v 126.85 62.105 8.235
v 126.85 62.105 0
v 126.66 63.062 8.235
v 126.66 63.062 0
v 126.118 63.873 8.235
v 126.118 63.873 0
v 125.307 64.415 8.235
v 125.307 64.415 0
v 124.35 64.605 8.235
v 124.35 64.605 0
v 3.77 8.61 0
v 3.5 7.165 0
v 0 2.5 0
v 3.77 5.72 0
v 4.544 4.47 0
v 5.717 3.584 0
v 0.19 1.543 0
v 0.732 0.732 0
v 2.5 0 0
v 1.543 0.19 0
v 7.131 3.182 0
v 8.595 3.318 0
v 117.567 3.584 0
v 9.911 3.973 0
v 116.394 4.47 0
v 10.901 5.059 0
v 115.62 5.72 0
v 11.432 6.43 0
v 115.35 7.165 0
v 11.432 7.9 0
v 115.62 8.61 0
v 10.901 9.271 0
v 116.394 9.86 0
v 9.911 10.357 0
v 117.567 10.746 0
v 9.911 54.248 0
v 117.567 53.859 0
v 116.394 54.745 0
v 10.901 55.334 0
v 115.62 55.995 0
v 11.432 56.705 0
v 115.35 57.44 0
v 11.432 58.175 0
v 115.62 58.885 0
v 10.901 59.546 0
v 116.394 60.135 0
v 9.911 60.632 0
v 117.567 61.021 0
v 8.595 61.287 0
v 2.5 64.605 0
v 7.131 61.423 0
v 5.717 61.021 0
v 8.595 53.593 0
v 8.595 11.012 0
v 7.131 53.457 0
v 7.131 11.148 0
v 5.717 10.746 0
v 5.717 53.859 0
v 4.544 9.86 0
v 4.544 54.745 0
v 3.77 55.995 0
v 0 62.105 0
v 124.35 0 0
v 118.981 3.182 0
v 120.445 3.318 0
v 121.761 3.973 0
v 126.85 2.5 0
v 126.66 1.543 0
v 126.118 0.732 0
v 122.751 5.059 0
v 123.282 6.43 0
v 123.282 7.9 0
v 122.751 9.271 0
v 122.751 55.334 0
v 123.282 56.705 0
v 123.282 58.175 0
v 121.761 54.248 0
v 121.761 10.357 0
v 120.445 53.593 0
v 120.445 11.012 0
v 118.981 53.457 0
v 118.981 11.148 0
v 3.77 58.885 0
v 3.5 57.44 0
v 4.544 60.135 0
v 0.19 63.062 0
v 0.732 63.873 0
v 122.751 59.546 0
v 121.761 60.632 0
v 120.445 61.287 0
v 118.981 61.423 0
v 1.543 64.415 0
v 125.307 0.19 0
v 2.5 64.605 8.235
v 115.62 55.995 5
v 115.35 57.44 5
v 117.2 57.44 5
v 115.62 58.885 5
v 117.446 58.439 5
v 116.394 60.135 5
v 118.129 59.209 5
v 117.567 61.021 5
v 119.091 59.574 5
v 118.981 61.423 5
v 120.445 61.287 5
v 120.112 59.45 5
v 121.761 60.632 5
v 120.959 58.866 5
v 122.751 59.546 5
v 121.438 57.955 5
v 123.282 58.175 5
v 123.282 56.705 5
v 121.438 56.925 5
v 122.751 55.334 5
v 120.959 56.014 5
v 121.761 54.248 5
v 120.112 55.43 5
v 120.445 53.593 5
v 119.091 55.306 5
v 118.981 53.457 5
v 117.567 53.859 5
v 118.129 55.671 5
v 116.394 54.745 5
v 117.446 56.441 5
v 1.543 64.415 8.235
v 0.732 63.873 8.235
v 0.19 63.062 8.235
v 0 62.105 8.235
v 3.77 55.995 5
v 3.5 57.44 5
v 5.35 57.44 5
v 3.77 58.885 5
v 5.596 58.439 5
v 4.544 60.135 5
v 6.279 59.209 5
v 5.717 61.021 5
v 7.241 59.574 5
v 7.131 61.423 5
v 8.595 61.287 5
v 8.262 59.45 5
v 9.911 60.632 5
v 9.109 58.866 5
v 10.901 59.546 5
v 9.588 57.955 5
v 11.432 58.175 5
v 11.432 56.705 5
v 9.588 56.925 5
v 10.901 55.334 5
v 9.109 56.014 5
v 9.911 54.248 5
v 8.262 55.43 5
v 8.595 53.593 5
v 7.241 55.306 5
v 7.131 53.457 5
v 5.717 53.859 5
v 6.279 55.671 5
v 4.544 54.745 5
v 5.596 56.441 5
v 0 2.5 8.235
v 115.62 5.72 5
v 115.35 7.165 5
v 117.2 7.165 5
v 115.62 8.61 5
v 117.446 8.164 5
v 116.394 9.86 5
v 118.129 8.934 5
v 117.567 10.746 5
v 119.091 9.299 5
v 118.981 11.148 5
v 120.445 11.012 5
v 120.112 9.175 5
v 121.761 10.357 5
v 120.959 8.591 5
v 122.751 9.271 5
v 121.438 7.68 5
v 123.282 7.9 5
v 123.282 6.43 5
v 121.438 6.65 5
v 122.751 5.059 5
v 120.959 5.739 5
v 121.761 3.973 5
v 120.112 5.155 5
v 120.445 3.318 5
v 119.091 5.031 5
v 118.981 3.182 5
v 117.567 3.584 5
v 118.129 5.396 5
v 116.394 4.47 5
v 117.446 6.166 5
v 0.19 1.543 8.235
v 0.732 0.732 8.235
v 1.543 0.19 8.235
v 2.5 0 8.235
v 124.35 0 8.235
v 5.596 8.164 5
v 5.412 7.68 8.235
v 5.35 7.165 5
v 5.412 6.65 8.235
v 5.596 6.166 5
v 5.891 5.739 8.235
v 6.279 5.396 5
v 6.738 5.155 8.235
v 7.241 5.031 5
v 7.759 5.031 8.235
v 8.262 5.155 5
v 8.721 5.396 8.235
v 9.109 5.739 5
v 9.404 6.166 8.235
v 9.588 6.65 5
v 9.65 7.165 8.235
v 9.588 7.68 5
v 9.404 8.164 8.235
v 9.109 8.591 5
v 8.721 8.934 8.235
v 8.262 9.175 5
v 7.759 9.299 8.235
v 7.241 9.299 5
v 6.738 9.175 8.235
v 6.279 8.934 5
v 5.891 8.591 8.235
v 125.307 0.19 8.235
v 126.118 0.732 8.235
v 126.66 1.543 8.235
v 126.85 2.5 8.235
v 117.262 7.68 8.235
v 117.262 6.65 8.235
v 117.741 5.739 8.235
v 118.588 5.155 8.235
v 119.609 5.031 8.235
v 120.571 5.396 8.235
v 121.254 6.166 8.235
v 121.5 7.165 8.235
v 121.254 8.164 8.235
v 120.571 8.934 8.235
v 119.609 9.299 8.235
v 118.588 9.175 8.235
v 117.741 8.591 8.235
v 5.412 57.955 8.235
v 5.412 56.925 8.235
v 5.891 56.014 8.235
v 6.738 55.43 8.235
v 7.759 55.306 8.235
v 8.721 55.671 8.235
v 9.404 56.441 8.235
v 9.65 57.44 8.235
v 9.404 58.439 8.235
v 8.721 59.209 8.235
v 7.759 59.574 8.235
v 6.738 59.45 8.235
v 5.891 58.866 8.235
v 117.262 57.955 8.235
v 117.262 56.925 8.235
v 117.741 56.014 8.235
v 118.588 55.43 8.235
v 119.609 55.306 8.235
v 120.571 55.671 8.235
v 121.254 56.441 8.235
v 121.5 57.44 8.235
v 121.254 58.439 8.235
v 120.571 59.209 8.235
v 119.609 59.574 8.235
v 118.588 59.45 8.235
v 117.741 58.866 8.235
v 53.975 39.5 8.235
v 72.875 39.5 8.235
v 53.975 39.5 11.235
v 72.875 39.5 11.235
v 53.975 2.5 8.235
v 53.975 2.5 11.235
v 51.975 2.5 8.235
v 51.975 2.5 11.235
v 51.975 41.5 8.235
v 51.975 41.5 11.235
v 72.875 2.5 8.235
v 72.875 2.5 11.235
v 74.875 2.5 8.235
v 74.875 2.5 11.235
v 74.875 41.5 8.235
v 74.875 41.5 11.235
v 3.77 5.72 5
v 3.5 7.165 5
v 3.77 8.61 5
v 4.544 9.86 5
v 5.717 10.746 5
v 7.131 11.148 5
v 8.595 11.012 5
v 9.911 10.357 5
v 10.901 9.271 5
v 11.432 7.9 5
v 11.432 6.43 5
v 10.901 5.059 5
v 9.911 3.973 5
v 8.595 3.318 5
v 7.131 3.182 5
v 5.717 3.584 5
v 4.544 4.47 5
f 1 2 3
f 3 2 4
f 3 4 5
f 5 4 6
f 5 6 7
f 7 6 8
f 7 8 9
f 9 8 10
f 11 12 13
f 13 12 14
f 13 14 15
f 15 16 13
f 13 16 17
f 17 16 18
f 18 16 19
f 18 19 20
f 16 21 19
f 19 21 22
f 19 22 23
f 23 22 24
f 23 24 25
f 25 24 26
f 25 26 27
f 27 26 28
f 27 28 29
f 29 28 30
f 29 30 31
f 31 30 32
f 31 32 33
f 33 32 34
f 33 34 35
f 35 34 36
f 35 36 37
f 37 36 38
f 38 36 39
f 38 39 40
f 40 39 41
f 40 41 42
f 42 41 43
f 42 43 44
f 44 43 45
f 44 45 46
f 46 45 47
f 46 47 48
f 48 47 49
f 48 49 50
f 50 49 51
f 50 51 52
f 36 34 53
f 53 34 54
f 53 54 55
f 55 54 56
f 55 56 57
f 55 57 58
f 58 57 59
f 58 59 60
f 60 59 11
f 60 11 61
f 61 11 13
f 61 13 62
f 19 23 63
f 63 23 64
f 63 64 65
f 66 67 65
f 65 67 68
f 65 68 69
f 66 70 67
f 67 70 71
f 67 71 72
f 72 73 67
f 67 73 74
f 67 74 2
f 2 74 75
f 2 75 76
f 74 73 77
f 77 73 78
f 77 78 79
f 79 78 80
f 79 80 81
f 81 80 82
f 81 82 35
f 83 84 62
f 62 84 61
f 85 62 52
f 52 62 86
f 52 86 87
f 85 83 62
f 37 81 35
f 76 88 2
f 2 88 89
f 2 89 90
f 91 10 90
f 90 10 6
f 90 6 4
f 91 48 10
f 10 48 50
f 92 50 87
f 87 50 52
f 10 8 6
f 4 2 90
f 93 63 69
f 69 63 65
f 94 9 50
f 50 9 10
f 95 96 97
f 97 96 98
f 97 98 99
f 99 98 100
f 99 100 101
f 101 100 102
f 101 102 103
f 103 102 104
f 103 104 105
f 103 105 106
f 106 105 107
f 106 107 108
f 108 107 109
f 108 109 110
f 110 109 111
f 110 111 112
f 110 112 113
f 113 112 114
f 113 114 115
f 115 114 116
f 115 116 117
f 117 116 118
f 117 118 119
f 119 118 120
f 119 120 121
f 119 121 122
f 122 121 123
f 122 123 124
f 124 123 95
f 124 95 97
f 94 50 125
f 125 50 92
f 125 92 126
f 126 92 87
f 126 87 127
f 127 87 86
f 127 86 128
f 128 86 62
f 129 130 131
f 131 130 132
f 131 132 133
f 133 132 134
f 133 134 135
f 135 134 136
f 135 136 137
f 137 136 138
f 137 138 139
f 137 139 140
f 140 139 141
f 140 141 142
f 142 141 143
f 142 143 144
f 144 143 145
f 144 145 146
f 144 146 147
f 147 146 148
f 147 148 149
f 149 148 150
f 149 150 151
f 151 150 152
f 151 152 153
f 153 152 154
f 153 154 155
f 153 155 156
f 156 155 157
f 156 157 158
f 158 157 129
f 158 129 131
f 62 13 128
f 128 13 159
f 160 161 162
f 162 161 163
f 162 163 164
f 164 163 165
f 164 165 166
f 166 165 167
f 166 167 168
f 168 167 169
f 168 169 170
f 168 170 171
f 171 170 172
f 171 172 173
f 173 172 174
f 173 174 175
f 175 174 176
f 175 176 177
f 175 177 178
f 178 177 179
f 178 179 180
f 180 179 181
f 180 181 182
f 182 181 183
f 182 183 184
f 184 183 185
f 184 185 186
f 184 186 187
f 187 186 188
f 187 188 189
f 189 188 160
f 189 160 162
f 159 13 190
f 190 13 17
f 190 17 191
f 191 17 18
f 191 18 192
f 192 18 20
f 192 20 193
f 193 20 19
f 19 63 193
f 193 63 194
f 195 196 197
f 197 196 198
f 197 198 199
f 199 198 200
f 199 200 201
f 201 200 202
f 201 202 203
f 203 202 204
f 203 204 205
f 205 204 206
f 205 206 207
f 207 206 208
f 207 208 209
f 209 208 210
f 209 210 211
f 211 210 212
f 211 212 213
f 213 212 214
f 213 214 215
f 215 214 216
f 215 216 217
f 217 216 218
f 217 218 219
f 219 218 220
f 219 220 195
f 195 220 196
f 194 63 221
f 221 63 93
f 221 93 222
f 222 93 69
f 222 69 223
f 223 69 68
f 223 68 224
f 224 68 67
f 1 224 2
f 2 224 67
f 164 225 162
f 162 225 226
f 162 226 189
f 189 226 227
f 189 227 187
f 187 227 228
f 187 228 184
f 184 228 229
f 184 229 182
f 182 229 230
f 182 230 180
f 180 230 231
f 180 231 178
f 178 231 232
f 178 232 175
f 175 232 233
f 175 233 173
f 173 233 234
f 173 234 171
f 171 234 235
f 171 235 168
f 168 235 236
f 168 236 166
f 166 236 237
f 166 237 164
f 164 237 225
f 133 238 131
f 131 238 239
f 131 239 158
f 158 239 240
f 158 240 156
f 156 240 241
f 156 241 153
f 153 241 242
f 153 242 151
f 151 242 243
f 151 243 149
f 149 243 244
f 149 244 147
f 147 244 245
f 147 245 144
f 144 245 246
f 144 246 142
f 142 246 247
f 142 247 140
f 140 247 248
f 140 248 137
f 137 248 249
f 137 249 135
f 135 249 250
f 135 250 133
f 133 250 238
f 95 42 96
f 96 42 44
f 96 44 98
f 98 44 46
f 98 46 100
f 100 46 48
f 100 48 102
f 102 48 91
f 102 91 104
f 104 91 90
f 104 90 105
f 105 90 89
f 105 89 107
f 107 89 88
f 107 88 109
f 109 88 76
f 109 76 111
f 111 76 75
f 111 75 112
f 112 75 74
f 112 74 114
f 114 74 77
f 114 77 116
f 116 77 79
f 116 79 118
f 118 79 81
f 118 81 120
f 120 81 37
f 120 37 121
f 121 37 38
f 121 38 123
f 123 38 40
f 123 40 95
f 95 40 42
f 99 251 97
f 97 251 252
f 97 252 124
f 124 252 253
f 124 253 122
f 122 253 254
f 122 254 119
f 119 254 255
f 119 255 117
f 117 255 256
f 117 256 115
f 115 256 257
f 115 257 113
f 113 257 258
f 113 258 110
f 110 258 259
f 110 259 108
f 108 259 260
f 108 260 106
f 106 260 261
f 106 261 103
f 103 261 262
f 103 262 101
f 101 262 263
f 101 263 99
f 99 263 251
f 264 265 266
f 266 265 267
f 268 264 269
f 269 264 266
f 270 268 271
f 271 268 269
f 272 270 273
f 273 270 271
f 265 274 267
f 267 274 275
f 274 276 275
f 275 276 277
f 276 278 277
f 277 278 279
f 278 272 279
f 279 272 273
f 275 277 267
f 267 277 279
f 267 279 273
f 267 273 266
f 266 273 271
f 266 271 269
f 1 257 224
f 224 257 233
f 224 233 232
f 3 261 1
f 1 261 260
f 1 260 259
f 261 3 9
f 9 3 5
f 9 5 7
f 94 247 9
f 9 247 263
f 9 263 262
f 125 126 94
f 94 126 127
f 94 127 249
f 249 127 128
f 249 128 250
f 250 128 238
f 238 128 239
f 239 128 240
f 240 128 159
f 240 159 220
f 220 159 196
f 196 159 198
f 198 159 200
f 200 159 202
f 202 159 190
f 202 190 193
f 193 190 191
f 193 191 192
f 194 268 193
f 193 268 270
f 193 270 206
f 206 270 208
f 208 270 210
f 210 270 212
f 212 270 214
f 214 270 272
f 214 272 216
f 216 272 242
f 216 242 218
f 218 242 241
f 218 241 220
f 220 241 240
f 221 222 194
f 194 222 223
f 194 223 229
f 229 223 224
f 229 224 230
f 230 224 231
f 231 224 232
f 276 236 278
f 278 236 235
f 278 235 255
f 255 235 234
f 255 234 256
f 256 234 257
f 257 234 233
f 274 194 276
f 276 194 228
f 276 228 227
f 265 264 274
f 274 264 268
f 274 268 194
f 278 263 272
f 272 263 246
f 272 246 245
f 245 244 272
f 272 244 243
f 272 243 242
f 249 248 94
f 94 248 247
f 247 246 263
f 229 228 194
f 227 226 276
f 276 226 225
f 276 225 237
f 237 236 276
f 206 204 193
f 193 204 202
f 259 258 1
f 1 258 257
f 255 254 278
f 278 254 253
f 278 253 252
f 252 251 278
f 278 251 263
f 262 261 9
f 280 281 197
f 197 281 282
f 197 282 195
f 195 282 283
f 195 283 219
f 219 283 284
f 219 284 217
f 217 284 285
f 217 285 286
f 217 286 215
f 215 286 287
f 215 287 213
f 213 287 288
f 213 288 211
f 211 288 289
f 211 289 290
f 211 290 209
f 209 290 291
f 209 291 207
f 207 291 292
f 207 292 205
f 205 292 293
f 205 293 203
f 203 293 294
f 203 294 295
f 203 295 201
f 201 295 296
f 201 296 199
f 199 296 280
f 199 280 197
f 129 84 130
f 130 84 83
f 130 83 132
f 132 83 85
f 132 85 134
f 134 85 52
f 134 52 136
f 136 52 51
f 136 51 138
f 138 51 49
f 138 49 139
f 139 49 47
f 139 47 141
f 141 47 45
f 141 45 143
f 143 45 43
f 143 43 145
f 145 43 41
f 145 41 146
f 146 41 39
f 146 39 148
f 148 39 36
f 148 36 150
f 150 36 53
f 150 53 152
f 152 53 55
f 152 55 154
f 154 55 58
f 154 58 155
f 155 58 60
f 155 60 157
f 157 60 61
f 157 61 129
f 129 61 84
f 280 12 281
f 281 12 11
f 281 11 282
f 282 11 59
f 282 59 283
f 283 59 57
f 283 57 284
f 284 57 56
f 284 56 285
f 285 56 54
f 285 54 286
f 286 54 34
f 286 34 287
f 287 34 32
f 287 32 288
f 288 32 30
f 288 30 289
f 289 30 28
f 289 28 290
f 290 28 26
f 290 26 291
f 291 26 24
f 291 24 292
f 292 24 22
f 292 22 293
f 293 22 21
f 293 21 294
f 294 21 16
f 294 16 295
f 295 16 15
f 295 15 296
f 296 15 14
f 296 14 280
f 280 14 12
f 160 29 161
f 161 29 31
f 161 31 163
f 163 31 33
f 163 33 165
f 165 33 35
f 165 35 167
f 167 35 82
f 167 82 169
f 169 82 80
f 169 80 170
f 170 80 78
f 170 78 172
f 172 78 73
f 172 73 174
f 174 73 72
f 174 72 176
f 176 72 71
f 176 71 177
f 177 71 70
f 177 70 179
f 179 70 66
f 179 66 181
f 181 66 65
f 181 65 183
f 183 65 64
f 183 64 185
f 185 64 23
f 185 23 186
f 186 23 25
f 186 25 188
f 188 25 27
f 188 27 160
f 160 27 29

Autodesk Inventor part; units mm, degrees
ref_plane "YZ Plane" through (0, 0, 0) normal (1, 0, 0) x (0, 1, 0)
ref_plane "XZ Plane" through (0, 0, 0) normal (0, 1, 0) x (-1, 0, 0)
ref_plane "XY Plane" through (0, 0, 0) normal (0, 0, 1) x (1, 0, 0)
sketch "Sketch1" plane through (0, 0, 0) normal (0, 0, 1) x (1, 0, 0)
  line L0 (0, 0) -> (126.85, 0)
  line L1 (126.85, 0) -> (126.85, 64.605)
  line L2 (126.85, 64.605) -> (0, 64.605)
  line L3 (0, 64.605) -> (0, 0)
  line L4 (55.925, 0) -> (65.5708, 0)
  line L5 (53.975, 0) -> (72.875, 0)
  line L6 (72.875, 0) -> (72.875, 39.5)
  line L7 (72.875, 39.5) -> (53.975, 39.5)
  line L8 (53.975, 39.5) -> (53.975, 0)
  line L9 (51.975, 0) -> (74.875, 0)
  line L10 (74.875, 0) -> (74.875, 41.5)
  line L11 (74.875, 41.5) -> (51.975, 41.5)
  line L12 (51.975, 41.5) -> (51.975, 0)
  point P0 (74.875, 20.75)
  point P1 (74.875, 0)
  dimension "d0" = 126.85
  dimension "d1" = 64.605
  dimension "d3" = 39.5
  dimension "d4" = 18.9
  dimension "d5" = 53.975
  dimension "d6" = 2
  dimension "d7" = 2
  dimension "d8" = 2
extrude "Extrusion2" add sketch "Sketch1" along normal blind 5.235 contours L3 L2 L1 L0 L10 L11 L12
extrude "Extrusion3" add sketch "Sketch1" along normal blind 8.235 contours L12 L11 L10 L0 L6 L7 L8
extrude "Extrusion4" add sketch "Sketch1" along normal blind 5.235 contours L8 L7 L6 L0
sketch "Sketch2" plane through (0, 0, 8.235) normal (0, 0, 1) x (1, 0, 0)
  line L0 (72.875, 39.5) -> (72.875, 0) projected
  line L1 (72.875, 0) -> (74.875, 0) projected
  line L2 (74.875, 0) -> (74.875, 41.5) projected
  line L3 (74.875, 41.5) -> (51.975, 41.5) projected
  line L4 (51.975, 41.5) -> (51.975, 0) projected
  line L5 (51.975, 0) -> (53.975, 0) projected
  line L6 (53.975, 0) -> (53.975, 39.5) projected
  line L7 (53.975, 39.5) -> (72.875, 39.5) projected
  line L8 (51.975, 0) -> (53.975, 0)
  line L9 (53.975, 0) -> (53.975, 2.5)
  line L10 (53.975, 2.5) -> (51.975, 2.5)
  line L11 (51.975, 2.5) -> (51.975, 0)
  line L12 (72.875, 0) -> (74.875, 0)
  line L13 (74.875, 0) -> (74.875, 2.5)
  line L14 (74.875, 2.5) -> (72.875, 2.5)
  line L15 (72.875, 2.5) -> (72.875, 0)
  point P0 (0, 0)
  dimension "d17" = 2.5
  dimension "d18" = 2.5
extrude "Extrusion5" cut sketch "Sketch2" against normal blind 3 contours L14 L2 L1 L0 | L6 L5 L4 L10
fillet "Fillet1" radius 2.5 4 edges at (126.85, 0, 2.6175) (0, 0, 2.6175) (126.85, 64.605, 2.6175) (0, 64.605, 2.6175)
sketch "Sketch3" plane through (0, 0, 5.235) normal (0, 0, 1) x (1, 0, 0)
  line L0 (0, 0) -> (15, 0)
  line L1 (15, 0) -> (15, 15)
  line L2 (15, 15) -> (0, 15)
  line L3 (0, 15) -> (0, 0)
  line L4 (0, 64.605) -> (15, 64.605)
  line L5 (15, 64.605) -> (15, 49.605)
  line L6 (15, 49.605) -> (0, 49.605)
  line L7 (0, 49.605) -> (0, 64.605)
  line L8 (124.35, 0) -> (2.5, 0) projected
  line L9 (126.85, 2.5) -> (126.85, 62.105) projected
  line L10 (126.85, 15) -> (111.85, 15)
  line L11 (111.85, 15) -> (111.85, 0)
  line L12 (111.85, 0) -> (126.85, 0)
  line L13 (126.85, 0) -> (126.85, 15)
  line L14 (126.85, 64.605) -> (111.85, 64.605)
  line L15 (111.85, 64.605) -> (111.85, 49.605)
  line L16 (111.85, 49.605) -> (126.85, 49.605)
  line L17 (126.85, 49.605) -> (126.85, 64.605)
  circle A0 centre (7.5, 57.44) radius 2.15
  circle A1 centre (119.35, 57.44) radius 2.15
  circle A2 centre (119.35, 7.165) radius 2.15
  line L18 (0, 62.105) -> (0, 2.5) projected
  circle A3 centre (7.5, 7.165) radius 2.15
  point P0 (111.85, 7.5)
  point P1 (119.35, 0)
  point P2 (119.35, 15)
  point P3 (7.5, 64.605)
  dimension "d22" = 15
  dimension "d23" = 15
  dimension "d24" = 15
  dimension "d25" = 15
  dimension "d26" = 64.605
  dimension "d28" = 15
  dimension "d29" = 15
  dimension "d30" = 15
  dimension "d31" = 15
  dimension "d32" = 64.605
  dimension "d33" = 0
  dimension "d52" = 7.165
  dimension "d53" = 7.5
  dimension "d54" = 4.3
  dimension "d55" = 4.3
  dimension "d56" = 7.5
  dimension "d57" = 7.165
  dimension "d58" = 4.3
  dimension "d59" = 7.5
  dimension "d61" = 7.165
  dimension "d62" = 0
  dimension "d63" = 4.3
  dimension "d65" = 7.5
  dimension "d66" = 7.165
sketch "Sketch4" plane through (0, 0, 0) normal (0, 0, -1) x (-1, 0, 0)
  line L0 (-126.85, 0) -> (-111.85, 0)
  line L1 (-111.85, 0) -> (-111.85, 15)
  line L2 (-111.85, 15) -> (-126.85, 15)
  line L3 (-126.85, 15) -> (-126.85, 0)
  line L4 (-126.85, 64.605) -> (-111.85, 64.605)
  line L5 (-111.85, 64.605) -> (-111.85, 49.605)
  line L6 (-111.85, 49.605) -> (-126.85, 49.605)
  line L7 (-126.85, 49.605) -> (-126.85, 64.605)
  line L8 (-85.2582, 0) -> (-207.1082, 0)
  line L9 (0, -43.3004) -> (0, 16.3046)
  line L10 (0, 15) -> (-15, 15)
  line L11 (-15, 15) -> (-15, 0)
  line L12 (-15, 0) -> (0, 0)
  line L13 (0, 0) -> (0, 15)
  line L14 (0, 64.605) -> (-15, 64.605)
  line L15 (-15, 64.605) -> (-15, 49.605)
  line L16 (-15, 49.605) -> (0, 49.605)
  line L17 (0, 49.605) -> (0, 64.605)
  line L18 (-2.5, 0) -> (-124.35, 0) projected
  line L19 (0, 62.105) -> (0, 2.5) projected
  line L20 (-126.85, 2.5) -> (-126.85, 62.105) projected
  point P0 (0, 0)
  point P1 (-15, 7.5)
  point P2 (-7.5, 0)
  point P3 (-7.5, 15)
  point P4 (0, 32.3025)
  point P5 (-119.35, 0)
  dimension "d34" = 15
  dimension "d35" = 15
  dimension "d36" = 15
  dimension "d37" = 15
  dimension "d38" = 64.605
  dimension "d39" = 0
  dimension "d40" = 15
  dimension "d41" = 15
  dimension "d42" = 15
  dimension "d43" = 15
  dimension "d44" = 64.605
  dimension "d45" = 0
  dimension "d46" = 0
  dimension "d47" = 0
  dimension "d48" = 0
  dimension "d49" = 0
extrude "Extrusion7" cut sketch "Sketch3" against normal blind 3.235 contours A0 | A1 | A2 | A3
sketch "Sketch5" plane through (0, 0, 0) normal (0, 0, -1) x (-1, 0, 0)
  circle A0 centre (-7.5, 7.165) radius 2.15 projected
  circle A1 centre (-7.5, 57.44) radius 2.15 projected
  circle A2 centre (-119.35, 57.44) radius 2.15 projected
  circle A3 centre (-119.35, 7.165) radius 2.15 projected
  circle A4 centre (-7.5, 7.165) radius 4
  circle A5 centre (-119.35, 7.165) radius 4
  circle A6 centre (-119.35, 57.44) radius 4
  circle A7 centre (-7.5, 57.44) radius 4
  point P0 (0, 0)
  dimension "d69" = 8
  dimension "d70" = 8
  dimension "d71" = 8
  dimension "d72" = 8
sketch "Sketch6" plane through (0, 0, 5.235) normal (0, 0, 1) x (1, 0, 0)
  line L0 (126.85, 2.5) -> (126.85, 62.105) projected
  circle A0 centre (119.35, 57.44) radius 2.15 projected
  circle A1 centre (7.5, 7.165) radius 2.15 projected
  circle A2 centre (119.35, 7.165) radius 2.15 projected
  circle A3 centre (7.5, 57.44) radius 2.15 projected
  arc A4 (2.5, 64.605) -> (0, 62.105) centre (2.5, 62.105) ccw projected
  line L1 (0, 62.105) -> (0, 2.5) projected
  arc A5 (0, 2.5) -> (2.5, 0) centre (2.5, 2.5) ccw projected
  line L2 (124.35, 0) -> (2.5, 0) projected
  arc A6 (124.35, 0) -> (126.85, 2.5) centre (124.35, 2.5) ccw projected
  line L3 (126.85, 2.5) -> (126.85, 62.105) projected
  arc A7 (126.85, 62.105) -> (124.35, 64.605) centre (124.35, 62.105) ccw projected
  line L4 (124.35, 64.605) -> (2.5, 64.605) projected
  line L5 (72.875, 2.5) -> (74.875, 2.5) projected
  line L6 (72.875, 39.5) -> (72.875, 2.5) projected
  line L7 (53.975, 39.5) -> (72.875, 39.5) projected
  line L8 (53.975, 2.5) -> (53.975, 39.5) projected
  line L9 (51.975, 2.5) -> (53.975, 2.5) projected
  line L10 (51.975, 2.5) -> (51.975, 41.5) projected
  line L11 (51.975, 41.5) -> (74.875, 41.5) projected
  line L12 (74.875, 41.5) -> (74.875, 2.5) projected
  line L13 (72.875, 2.5) -> (74.875, 2.5) projected
  line L14 (74.875, 2.5) -> (74.875, 41.5) projected
  line L15 (74.875, 41.5) -> (51.975, 41.5) projected
  line L16 (51.975, 41.5) -> (51.975, 2.5) projected
  line L17 (51.975, 2.5) -> (53.975, 2.5) projected
  line L18 (53.975, 2.5) -> (53.975, 39.5) projected
  line L19 (53.975, 39.5) -> (72.875, 39.5) projected
  line L20 (72.875, 39.5) -> (72.875, 2.5) projected
  point P0 (0, 0)
sketch "Sketch7" plane through (0, 0, 8.235) normal (0, 0, 1) x (1, 0, 0)
  line L0 (72.875, 2.5) -> (74.875, 2.5) projected
  line L1 (74.875, 2.5) -> (74.875, 41.5) projected
  line L2 (74.875, 41.5) -> (51.975, 41.5) projected
  line L3 (51.975, 41.5) -> (51.975, 2.5) projected
  line L4 (51.975, 2.5) -> (53.975, 2.5) projected
  line L5 (53.975, 2.5) -> (53.975, 39.5) projected
  line L6 (53.975, 39.5) -> (72.875, 39.5) projected
  line L7 (72.875, 39.5) -> (72.875, 2.5) projected
  point P0 (0, 0)
extrude "Extrusion8" add sketch "Sketch7" along normal blind 3
extrude "Extrusion9" add sketch "Sketch6" along normal blind 3
extrude "Extrusion10" cut sketch "Sketch5" against normal blind 5
extrude "Extrusion11" cut sketch "Sketch5" against normal blind 10 contours A0 | A1 | A2 | A3
properties part number "KeypadBase"
